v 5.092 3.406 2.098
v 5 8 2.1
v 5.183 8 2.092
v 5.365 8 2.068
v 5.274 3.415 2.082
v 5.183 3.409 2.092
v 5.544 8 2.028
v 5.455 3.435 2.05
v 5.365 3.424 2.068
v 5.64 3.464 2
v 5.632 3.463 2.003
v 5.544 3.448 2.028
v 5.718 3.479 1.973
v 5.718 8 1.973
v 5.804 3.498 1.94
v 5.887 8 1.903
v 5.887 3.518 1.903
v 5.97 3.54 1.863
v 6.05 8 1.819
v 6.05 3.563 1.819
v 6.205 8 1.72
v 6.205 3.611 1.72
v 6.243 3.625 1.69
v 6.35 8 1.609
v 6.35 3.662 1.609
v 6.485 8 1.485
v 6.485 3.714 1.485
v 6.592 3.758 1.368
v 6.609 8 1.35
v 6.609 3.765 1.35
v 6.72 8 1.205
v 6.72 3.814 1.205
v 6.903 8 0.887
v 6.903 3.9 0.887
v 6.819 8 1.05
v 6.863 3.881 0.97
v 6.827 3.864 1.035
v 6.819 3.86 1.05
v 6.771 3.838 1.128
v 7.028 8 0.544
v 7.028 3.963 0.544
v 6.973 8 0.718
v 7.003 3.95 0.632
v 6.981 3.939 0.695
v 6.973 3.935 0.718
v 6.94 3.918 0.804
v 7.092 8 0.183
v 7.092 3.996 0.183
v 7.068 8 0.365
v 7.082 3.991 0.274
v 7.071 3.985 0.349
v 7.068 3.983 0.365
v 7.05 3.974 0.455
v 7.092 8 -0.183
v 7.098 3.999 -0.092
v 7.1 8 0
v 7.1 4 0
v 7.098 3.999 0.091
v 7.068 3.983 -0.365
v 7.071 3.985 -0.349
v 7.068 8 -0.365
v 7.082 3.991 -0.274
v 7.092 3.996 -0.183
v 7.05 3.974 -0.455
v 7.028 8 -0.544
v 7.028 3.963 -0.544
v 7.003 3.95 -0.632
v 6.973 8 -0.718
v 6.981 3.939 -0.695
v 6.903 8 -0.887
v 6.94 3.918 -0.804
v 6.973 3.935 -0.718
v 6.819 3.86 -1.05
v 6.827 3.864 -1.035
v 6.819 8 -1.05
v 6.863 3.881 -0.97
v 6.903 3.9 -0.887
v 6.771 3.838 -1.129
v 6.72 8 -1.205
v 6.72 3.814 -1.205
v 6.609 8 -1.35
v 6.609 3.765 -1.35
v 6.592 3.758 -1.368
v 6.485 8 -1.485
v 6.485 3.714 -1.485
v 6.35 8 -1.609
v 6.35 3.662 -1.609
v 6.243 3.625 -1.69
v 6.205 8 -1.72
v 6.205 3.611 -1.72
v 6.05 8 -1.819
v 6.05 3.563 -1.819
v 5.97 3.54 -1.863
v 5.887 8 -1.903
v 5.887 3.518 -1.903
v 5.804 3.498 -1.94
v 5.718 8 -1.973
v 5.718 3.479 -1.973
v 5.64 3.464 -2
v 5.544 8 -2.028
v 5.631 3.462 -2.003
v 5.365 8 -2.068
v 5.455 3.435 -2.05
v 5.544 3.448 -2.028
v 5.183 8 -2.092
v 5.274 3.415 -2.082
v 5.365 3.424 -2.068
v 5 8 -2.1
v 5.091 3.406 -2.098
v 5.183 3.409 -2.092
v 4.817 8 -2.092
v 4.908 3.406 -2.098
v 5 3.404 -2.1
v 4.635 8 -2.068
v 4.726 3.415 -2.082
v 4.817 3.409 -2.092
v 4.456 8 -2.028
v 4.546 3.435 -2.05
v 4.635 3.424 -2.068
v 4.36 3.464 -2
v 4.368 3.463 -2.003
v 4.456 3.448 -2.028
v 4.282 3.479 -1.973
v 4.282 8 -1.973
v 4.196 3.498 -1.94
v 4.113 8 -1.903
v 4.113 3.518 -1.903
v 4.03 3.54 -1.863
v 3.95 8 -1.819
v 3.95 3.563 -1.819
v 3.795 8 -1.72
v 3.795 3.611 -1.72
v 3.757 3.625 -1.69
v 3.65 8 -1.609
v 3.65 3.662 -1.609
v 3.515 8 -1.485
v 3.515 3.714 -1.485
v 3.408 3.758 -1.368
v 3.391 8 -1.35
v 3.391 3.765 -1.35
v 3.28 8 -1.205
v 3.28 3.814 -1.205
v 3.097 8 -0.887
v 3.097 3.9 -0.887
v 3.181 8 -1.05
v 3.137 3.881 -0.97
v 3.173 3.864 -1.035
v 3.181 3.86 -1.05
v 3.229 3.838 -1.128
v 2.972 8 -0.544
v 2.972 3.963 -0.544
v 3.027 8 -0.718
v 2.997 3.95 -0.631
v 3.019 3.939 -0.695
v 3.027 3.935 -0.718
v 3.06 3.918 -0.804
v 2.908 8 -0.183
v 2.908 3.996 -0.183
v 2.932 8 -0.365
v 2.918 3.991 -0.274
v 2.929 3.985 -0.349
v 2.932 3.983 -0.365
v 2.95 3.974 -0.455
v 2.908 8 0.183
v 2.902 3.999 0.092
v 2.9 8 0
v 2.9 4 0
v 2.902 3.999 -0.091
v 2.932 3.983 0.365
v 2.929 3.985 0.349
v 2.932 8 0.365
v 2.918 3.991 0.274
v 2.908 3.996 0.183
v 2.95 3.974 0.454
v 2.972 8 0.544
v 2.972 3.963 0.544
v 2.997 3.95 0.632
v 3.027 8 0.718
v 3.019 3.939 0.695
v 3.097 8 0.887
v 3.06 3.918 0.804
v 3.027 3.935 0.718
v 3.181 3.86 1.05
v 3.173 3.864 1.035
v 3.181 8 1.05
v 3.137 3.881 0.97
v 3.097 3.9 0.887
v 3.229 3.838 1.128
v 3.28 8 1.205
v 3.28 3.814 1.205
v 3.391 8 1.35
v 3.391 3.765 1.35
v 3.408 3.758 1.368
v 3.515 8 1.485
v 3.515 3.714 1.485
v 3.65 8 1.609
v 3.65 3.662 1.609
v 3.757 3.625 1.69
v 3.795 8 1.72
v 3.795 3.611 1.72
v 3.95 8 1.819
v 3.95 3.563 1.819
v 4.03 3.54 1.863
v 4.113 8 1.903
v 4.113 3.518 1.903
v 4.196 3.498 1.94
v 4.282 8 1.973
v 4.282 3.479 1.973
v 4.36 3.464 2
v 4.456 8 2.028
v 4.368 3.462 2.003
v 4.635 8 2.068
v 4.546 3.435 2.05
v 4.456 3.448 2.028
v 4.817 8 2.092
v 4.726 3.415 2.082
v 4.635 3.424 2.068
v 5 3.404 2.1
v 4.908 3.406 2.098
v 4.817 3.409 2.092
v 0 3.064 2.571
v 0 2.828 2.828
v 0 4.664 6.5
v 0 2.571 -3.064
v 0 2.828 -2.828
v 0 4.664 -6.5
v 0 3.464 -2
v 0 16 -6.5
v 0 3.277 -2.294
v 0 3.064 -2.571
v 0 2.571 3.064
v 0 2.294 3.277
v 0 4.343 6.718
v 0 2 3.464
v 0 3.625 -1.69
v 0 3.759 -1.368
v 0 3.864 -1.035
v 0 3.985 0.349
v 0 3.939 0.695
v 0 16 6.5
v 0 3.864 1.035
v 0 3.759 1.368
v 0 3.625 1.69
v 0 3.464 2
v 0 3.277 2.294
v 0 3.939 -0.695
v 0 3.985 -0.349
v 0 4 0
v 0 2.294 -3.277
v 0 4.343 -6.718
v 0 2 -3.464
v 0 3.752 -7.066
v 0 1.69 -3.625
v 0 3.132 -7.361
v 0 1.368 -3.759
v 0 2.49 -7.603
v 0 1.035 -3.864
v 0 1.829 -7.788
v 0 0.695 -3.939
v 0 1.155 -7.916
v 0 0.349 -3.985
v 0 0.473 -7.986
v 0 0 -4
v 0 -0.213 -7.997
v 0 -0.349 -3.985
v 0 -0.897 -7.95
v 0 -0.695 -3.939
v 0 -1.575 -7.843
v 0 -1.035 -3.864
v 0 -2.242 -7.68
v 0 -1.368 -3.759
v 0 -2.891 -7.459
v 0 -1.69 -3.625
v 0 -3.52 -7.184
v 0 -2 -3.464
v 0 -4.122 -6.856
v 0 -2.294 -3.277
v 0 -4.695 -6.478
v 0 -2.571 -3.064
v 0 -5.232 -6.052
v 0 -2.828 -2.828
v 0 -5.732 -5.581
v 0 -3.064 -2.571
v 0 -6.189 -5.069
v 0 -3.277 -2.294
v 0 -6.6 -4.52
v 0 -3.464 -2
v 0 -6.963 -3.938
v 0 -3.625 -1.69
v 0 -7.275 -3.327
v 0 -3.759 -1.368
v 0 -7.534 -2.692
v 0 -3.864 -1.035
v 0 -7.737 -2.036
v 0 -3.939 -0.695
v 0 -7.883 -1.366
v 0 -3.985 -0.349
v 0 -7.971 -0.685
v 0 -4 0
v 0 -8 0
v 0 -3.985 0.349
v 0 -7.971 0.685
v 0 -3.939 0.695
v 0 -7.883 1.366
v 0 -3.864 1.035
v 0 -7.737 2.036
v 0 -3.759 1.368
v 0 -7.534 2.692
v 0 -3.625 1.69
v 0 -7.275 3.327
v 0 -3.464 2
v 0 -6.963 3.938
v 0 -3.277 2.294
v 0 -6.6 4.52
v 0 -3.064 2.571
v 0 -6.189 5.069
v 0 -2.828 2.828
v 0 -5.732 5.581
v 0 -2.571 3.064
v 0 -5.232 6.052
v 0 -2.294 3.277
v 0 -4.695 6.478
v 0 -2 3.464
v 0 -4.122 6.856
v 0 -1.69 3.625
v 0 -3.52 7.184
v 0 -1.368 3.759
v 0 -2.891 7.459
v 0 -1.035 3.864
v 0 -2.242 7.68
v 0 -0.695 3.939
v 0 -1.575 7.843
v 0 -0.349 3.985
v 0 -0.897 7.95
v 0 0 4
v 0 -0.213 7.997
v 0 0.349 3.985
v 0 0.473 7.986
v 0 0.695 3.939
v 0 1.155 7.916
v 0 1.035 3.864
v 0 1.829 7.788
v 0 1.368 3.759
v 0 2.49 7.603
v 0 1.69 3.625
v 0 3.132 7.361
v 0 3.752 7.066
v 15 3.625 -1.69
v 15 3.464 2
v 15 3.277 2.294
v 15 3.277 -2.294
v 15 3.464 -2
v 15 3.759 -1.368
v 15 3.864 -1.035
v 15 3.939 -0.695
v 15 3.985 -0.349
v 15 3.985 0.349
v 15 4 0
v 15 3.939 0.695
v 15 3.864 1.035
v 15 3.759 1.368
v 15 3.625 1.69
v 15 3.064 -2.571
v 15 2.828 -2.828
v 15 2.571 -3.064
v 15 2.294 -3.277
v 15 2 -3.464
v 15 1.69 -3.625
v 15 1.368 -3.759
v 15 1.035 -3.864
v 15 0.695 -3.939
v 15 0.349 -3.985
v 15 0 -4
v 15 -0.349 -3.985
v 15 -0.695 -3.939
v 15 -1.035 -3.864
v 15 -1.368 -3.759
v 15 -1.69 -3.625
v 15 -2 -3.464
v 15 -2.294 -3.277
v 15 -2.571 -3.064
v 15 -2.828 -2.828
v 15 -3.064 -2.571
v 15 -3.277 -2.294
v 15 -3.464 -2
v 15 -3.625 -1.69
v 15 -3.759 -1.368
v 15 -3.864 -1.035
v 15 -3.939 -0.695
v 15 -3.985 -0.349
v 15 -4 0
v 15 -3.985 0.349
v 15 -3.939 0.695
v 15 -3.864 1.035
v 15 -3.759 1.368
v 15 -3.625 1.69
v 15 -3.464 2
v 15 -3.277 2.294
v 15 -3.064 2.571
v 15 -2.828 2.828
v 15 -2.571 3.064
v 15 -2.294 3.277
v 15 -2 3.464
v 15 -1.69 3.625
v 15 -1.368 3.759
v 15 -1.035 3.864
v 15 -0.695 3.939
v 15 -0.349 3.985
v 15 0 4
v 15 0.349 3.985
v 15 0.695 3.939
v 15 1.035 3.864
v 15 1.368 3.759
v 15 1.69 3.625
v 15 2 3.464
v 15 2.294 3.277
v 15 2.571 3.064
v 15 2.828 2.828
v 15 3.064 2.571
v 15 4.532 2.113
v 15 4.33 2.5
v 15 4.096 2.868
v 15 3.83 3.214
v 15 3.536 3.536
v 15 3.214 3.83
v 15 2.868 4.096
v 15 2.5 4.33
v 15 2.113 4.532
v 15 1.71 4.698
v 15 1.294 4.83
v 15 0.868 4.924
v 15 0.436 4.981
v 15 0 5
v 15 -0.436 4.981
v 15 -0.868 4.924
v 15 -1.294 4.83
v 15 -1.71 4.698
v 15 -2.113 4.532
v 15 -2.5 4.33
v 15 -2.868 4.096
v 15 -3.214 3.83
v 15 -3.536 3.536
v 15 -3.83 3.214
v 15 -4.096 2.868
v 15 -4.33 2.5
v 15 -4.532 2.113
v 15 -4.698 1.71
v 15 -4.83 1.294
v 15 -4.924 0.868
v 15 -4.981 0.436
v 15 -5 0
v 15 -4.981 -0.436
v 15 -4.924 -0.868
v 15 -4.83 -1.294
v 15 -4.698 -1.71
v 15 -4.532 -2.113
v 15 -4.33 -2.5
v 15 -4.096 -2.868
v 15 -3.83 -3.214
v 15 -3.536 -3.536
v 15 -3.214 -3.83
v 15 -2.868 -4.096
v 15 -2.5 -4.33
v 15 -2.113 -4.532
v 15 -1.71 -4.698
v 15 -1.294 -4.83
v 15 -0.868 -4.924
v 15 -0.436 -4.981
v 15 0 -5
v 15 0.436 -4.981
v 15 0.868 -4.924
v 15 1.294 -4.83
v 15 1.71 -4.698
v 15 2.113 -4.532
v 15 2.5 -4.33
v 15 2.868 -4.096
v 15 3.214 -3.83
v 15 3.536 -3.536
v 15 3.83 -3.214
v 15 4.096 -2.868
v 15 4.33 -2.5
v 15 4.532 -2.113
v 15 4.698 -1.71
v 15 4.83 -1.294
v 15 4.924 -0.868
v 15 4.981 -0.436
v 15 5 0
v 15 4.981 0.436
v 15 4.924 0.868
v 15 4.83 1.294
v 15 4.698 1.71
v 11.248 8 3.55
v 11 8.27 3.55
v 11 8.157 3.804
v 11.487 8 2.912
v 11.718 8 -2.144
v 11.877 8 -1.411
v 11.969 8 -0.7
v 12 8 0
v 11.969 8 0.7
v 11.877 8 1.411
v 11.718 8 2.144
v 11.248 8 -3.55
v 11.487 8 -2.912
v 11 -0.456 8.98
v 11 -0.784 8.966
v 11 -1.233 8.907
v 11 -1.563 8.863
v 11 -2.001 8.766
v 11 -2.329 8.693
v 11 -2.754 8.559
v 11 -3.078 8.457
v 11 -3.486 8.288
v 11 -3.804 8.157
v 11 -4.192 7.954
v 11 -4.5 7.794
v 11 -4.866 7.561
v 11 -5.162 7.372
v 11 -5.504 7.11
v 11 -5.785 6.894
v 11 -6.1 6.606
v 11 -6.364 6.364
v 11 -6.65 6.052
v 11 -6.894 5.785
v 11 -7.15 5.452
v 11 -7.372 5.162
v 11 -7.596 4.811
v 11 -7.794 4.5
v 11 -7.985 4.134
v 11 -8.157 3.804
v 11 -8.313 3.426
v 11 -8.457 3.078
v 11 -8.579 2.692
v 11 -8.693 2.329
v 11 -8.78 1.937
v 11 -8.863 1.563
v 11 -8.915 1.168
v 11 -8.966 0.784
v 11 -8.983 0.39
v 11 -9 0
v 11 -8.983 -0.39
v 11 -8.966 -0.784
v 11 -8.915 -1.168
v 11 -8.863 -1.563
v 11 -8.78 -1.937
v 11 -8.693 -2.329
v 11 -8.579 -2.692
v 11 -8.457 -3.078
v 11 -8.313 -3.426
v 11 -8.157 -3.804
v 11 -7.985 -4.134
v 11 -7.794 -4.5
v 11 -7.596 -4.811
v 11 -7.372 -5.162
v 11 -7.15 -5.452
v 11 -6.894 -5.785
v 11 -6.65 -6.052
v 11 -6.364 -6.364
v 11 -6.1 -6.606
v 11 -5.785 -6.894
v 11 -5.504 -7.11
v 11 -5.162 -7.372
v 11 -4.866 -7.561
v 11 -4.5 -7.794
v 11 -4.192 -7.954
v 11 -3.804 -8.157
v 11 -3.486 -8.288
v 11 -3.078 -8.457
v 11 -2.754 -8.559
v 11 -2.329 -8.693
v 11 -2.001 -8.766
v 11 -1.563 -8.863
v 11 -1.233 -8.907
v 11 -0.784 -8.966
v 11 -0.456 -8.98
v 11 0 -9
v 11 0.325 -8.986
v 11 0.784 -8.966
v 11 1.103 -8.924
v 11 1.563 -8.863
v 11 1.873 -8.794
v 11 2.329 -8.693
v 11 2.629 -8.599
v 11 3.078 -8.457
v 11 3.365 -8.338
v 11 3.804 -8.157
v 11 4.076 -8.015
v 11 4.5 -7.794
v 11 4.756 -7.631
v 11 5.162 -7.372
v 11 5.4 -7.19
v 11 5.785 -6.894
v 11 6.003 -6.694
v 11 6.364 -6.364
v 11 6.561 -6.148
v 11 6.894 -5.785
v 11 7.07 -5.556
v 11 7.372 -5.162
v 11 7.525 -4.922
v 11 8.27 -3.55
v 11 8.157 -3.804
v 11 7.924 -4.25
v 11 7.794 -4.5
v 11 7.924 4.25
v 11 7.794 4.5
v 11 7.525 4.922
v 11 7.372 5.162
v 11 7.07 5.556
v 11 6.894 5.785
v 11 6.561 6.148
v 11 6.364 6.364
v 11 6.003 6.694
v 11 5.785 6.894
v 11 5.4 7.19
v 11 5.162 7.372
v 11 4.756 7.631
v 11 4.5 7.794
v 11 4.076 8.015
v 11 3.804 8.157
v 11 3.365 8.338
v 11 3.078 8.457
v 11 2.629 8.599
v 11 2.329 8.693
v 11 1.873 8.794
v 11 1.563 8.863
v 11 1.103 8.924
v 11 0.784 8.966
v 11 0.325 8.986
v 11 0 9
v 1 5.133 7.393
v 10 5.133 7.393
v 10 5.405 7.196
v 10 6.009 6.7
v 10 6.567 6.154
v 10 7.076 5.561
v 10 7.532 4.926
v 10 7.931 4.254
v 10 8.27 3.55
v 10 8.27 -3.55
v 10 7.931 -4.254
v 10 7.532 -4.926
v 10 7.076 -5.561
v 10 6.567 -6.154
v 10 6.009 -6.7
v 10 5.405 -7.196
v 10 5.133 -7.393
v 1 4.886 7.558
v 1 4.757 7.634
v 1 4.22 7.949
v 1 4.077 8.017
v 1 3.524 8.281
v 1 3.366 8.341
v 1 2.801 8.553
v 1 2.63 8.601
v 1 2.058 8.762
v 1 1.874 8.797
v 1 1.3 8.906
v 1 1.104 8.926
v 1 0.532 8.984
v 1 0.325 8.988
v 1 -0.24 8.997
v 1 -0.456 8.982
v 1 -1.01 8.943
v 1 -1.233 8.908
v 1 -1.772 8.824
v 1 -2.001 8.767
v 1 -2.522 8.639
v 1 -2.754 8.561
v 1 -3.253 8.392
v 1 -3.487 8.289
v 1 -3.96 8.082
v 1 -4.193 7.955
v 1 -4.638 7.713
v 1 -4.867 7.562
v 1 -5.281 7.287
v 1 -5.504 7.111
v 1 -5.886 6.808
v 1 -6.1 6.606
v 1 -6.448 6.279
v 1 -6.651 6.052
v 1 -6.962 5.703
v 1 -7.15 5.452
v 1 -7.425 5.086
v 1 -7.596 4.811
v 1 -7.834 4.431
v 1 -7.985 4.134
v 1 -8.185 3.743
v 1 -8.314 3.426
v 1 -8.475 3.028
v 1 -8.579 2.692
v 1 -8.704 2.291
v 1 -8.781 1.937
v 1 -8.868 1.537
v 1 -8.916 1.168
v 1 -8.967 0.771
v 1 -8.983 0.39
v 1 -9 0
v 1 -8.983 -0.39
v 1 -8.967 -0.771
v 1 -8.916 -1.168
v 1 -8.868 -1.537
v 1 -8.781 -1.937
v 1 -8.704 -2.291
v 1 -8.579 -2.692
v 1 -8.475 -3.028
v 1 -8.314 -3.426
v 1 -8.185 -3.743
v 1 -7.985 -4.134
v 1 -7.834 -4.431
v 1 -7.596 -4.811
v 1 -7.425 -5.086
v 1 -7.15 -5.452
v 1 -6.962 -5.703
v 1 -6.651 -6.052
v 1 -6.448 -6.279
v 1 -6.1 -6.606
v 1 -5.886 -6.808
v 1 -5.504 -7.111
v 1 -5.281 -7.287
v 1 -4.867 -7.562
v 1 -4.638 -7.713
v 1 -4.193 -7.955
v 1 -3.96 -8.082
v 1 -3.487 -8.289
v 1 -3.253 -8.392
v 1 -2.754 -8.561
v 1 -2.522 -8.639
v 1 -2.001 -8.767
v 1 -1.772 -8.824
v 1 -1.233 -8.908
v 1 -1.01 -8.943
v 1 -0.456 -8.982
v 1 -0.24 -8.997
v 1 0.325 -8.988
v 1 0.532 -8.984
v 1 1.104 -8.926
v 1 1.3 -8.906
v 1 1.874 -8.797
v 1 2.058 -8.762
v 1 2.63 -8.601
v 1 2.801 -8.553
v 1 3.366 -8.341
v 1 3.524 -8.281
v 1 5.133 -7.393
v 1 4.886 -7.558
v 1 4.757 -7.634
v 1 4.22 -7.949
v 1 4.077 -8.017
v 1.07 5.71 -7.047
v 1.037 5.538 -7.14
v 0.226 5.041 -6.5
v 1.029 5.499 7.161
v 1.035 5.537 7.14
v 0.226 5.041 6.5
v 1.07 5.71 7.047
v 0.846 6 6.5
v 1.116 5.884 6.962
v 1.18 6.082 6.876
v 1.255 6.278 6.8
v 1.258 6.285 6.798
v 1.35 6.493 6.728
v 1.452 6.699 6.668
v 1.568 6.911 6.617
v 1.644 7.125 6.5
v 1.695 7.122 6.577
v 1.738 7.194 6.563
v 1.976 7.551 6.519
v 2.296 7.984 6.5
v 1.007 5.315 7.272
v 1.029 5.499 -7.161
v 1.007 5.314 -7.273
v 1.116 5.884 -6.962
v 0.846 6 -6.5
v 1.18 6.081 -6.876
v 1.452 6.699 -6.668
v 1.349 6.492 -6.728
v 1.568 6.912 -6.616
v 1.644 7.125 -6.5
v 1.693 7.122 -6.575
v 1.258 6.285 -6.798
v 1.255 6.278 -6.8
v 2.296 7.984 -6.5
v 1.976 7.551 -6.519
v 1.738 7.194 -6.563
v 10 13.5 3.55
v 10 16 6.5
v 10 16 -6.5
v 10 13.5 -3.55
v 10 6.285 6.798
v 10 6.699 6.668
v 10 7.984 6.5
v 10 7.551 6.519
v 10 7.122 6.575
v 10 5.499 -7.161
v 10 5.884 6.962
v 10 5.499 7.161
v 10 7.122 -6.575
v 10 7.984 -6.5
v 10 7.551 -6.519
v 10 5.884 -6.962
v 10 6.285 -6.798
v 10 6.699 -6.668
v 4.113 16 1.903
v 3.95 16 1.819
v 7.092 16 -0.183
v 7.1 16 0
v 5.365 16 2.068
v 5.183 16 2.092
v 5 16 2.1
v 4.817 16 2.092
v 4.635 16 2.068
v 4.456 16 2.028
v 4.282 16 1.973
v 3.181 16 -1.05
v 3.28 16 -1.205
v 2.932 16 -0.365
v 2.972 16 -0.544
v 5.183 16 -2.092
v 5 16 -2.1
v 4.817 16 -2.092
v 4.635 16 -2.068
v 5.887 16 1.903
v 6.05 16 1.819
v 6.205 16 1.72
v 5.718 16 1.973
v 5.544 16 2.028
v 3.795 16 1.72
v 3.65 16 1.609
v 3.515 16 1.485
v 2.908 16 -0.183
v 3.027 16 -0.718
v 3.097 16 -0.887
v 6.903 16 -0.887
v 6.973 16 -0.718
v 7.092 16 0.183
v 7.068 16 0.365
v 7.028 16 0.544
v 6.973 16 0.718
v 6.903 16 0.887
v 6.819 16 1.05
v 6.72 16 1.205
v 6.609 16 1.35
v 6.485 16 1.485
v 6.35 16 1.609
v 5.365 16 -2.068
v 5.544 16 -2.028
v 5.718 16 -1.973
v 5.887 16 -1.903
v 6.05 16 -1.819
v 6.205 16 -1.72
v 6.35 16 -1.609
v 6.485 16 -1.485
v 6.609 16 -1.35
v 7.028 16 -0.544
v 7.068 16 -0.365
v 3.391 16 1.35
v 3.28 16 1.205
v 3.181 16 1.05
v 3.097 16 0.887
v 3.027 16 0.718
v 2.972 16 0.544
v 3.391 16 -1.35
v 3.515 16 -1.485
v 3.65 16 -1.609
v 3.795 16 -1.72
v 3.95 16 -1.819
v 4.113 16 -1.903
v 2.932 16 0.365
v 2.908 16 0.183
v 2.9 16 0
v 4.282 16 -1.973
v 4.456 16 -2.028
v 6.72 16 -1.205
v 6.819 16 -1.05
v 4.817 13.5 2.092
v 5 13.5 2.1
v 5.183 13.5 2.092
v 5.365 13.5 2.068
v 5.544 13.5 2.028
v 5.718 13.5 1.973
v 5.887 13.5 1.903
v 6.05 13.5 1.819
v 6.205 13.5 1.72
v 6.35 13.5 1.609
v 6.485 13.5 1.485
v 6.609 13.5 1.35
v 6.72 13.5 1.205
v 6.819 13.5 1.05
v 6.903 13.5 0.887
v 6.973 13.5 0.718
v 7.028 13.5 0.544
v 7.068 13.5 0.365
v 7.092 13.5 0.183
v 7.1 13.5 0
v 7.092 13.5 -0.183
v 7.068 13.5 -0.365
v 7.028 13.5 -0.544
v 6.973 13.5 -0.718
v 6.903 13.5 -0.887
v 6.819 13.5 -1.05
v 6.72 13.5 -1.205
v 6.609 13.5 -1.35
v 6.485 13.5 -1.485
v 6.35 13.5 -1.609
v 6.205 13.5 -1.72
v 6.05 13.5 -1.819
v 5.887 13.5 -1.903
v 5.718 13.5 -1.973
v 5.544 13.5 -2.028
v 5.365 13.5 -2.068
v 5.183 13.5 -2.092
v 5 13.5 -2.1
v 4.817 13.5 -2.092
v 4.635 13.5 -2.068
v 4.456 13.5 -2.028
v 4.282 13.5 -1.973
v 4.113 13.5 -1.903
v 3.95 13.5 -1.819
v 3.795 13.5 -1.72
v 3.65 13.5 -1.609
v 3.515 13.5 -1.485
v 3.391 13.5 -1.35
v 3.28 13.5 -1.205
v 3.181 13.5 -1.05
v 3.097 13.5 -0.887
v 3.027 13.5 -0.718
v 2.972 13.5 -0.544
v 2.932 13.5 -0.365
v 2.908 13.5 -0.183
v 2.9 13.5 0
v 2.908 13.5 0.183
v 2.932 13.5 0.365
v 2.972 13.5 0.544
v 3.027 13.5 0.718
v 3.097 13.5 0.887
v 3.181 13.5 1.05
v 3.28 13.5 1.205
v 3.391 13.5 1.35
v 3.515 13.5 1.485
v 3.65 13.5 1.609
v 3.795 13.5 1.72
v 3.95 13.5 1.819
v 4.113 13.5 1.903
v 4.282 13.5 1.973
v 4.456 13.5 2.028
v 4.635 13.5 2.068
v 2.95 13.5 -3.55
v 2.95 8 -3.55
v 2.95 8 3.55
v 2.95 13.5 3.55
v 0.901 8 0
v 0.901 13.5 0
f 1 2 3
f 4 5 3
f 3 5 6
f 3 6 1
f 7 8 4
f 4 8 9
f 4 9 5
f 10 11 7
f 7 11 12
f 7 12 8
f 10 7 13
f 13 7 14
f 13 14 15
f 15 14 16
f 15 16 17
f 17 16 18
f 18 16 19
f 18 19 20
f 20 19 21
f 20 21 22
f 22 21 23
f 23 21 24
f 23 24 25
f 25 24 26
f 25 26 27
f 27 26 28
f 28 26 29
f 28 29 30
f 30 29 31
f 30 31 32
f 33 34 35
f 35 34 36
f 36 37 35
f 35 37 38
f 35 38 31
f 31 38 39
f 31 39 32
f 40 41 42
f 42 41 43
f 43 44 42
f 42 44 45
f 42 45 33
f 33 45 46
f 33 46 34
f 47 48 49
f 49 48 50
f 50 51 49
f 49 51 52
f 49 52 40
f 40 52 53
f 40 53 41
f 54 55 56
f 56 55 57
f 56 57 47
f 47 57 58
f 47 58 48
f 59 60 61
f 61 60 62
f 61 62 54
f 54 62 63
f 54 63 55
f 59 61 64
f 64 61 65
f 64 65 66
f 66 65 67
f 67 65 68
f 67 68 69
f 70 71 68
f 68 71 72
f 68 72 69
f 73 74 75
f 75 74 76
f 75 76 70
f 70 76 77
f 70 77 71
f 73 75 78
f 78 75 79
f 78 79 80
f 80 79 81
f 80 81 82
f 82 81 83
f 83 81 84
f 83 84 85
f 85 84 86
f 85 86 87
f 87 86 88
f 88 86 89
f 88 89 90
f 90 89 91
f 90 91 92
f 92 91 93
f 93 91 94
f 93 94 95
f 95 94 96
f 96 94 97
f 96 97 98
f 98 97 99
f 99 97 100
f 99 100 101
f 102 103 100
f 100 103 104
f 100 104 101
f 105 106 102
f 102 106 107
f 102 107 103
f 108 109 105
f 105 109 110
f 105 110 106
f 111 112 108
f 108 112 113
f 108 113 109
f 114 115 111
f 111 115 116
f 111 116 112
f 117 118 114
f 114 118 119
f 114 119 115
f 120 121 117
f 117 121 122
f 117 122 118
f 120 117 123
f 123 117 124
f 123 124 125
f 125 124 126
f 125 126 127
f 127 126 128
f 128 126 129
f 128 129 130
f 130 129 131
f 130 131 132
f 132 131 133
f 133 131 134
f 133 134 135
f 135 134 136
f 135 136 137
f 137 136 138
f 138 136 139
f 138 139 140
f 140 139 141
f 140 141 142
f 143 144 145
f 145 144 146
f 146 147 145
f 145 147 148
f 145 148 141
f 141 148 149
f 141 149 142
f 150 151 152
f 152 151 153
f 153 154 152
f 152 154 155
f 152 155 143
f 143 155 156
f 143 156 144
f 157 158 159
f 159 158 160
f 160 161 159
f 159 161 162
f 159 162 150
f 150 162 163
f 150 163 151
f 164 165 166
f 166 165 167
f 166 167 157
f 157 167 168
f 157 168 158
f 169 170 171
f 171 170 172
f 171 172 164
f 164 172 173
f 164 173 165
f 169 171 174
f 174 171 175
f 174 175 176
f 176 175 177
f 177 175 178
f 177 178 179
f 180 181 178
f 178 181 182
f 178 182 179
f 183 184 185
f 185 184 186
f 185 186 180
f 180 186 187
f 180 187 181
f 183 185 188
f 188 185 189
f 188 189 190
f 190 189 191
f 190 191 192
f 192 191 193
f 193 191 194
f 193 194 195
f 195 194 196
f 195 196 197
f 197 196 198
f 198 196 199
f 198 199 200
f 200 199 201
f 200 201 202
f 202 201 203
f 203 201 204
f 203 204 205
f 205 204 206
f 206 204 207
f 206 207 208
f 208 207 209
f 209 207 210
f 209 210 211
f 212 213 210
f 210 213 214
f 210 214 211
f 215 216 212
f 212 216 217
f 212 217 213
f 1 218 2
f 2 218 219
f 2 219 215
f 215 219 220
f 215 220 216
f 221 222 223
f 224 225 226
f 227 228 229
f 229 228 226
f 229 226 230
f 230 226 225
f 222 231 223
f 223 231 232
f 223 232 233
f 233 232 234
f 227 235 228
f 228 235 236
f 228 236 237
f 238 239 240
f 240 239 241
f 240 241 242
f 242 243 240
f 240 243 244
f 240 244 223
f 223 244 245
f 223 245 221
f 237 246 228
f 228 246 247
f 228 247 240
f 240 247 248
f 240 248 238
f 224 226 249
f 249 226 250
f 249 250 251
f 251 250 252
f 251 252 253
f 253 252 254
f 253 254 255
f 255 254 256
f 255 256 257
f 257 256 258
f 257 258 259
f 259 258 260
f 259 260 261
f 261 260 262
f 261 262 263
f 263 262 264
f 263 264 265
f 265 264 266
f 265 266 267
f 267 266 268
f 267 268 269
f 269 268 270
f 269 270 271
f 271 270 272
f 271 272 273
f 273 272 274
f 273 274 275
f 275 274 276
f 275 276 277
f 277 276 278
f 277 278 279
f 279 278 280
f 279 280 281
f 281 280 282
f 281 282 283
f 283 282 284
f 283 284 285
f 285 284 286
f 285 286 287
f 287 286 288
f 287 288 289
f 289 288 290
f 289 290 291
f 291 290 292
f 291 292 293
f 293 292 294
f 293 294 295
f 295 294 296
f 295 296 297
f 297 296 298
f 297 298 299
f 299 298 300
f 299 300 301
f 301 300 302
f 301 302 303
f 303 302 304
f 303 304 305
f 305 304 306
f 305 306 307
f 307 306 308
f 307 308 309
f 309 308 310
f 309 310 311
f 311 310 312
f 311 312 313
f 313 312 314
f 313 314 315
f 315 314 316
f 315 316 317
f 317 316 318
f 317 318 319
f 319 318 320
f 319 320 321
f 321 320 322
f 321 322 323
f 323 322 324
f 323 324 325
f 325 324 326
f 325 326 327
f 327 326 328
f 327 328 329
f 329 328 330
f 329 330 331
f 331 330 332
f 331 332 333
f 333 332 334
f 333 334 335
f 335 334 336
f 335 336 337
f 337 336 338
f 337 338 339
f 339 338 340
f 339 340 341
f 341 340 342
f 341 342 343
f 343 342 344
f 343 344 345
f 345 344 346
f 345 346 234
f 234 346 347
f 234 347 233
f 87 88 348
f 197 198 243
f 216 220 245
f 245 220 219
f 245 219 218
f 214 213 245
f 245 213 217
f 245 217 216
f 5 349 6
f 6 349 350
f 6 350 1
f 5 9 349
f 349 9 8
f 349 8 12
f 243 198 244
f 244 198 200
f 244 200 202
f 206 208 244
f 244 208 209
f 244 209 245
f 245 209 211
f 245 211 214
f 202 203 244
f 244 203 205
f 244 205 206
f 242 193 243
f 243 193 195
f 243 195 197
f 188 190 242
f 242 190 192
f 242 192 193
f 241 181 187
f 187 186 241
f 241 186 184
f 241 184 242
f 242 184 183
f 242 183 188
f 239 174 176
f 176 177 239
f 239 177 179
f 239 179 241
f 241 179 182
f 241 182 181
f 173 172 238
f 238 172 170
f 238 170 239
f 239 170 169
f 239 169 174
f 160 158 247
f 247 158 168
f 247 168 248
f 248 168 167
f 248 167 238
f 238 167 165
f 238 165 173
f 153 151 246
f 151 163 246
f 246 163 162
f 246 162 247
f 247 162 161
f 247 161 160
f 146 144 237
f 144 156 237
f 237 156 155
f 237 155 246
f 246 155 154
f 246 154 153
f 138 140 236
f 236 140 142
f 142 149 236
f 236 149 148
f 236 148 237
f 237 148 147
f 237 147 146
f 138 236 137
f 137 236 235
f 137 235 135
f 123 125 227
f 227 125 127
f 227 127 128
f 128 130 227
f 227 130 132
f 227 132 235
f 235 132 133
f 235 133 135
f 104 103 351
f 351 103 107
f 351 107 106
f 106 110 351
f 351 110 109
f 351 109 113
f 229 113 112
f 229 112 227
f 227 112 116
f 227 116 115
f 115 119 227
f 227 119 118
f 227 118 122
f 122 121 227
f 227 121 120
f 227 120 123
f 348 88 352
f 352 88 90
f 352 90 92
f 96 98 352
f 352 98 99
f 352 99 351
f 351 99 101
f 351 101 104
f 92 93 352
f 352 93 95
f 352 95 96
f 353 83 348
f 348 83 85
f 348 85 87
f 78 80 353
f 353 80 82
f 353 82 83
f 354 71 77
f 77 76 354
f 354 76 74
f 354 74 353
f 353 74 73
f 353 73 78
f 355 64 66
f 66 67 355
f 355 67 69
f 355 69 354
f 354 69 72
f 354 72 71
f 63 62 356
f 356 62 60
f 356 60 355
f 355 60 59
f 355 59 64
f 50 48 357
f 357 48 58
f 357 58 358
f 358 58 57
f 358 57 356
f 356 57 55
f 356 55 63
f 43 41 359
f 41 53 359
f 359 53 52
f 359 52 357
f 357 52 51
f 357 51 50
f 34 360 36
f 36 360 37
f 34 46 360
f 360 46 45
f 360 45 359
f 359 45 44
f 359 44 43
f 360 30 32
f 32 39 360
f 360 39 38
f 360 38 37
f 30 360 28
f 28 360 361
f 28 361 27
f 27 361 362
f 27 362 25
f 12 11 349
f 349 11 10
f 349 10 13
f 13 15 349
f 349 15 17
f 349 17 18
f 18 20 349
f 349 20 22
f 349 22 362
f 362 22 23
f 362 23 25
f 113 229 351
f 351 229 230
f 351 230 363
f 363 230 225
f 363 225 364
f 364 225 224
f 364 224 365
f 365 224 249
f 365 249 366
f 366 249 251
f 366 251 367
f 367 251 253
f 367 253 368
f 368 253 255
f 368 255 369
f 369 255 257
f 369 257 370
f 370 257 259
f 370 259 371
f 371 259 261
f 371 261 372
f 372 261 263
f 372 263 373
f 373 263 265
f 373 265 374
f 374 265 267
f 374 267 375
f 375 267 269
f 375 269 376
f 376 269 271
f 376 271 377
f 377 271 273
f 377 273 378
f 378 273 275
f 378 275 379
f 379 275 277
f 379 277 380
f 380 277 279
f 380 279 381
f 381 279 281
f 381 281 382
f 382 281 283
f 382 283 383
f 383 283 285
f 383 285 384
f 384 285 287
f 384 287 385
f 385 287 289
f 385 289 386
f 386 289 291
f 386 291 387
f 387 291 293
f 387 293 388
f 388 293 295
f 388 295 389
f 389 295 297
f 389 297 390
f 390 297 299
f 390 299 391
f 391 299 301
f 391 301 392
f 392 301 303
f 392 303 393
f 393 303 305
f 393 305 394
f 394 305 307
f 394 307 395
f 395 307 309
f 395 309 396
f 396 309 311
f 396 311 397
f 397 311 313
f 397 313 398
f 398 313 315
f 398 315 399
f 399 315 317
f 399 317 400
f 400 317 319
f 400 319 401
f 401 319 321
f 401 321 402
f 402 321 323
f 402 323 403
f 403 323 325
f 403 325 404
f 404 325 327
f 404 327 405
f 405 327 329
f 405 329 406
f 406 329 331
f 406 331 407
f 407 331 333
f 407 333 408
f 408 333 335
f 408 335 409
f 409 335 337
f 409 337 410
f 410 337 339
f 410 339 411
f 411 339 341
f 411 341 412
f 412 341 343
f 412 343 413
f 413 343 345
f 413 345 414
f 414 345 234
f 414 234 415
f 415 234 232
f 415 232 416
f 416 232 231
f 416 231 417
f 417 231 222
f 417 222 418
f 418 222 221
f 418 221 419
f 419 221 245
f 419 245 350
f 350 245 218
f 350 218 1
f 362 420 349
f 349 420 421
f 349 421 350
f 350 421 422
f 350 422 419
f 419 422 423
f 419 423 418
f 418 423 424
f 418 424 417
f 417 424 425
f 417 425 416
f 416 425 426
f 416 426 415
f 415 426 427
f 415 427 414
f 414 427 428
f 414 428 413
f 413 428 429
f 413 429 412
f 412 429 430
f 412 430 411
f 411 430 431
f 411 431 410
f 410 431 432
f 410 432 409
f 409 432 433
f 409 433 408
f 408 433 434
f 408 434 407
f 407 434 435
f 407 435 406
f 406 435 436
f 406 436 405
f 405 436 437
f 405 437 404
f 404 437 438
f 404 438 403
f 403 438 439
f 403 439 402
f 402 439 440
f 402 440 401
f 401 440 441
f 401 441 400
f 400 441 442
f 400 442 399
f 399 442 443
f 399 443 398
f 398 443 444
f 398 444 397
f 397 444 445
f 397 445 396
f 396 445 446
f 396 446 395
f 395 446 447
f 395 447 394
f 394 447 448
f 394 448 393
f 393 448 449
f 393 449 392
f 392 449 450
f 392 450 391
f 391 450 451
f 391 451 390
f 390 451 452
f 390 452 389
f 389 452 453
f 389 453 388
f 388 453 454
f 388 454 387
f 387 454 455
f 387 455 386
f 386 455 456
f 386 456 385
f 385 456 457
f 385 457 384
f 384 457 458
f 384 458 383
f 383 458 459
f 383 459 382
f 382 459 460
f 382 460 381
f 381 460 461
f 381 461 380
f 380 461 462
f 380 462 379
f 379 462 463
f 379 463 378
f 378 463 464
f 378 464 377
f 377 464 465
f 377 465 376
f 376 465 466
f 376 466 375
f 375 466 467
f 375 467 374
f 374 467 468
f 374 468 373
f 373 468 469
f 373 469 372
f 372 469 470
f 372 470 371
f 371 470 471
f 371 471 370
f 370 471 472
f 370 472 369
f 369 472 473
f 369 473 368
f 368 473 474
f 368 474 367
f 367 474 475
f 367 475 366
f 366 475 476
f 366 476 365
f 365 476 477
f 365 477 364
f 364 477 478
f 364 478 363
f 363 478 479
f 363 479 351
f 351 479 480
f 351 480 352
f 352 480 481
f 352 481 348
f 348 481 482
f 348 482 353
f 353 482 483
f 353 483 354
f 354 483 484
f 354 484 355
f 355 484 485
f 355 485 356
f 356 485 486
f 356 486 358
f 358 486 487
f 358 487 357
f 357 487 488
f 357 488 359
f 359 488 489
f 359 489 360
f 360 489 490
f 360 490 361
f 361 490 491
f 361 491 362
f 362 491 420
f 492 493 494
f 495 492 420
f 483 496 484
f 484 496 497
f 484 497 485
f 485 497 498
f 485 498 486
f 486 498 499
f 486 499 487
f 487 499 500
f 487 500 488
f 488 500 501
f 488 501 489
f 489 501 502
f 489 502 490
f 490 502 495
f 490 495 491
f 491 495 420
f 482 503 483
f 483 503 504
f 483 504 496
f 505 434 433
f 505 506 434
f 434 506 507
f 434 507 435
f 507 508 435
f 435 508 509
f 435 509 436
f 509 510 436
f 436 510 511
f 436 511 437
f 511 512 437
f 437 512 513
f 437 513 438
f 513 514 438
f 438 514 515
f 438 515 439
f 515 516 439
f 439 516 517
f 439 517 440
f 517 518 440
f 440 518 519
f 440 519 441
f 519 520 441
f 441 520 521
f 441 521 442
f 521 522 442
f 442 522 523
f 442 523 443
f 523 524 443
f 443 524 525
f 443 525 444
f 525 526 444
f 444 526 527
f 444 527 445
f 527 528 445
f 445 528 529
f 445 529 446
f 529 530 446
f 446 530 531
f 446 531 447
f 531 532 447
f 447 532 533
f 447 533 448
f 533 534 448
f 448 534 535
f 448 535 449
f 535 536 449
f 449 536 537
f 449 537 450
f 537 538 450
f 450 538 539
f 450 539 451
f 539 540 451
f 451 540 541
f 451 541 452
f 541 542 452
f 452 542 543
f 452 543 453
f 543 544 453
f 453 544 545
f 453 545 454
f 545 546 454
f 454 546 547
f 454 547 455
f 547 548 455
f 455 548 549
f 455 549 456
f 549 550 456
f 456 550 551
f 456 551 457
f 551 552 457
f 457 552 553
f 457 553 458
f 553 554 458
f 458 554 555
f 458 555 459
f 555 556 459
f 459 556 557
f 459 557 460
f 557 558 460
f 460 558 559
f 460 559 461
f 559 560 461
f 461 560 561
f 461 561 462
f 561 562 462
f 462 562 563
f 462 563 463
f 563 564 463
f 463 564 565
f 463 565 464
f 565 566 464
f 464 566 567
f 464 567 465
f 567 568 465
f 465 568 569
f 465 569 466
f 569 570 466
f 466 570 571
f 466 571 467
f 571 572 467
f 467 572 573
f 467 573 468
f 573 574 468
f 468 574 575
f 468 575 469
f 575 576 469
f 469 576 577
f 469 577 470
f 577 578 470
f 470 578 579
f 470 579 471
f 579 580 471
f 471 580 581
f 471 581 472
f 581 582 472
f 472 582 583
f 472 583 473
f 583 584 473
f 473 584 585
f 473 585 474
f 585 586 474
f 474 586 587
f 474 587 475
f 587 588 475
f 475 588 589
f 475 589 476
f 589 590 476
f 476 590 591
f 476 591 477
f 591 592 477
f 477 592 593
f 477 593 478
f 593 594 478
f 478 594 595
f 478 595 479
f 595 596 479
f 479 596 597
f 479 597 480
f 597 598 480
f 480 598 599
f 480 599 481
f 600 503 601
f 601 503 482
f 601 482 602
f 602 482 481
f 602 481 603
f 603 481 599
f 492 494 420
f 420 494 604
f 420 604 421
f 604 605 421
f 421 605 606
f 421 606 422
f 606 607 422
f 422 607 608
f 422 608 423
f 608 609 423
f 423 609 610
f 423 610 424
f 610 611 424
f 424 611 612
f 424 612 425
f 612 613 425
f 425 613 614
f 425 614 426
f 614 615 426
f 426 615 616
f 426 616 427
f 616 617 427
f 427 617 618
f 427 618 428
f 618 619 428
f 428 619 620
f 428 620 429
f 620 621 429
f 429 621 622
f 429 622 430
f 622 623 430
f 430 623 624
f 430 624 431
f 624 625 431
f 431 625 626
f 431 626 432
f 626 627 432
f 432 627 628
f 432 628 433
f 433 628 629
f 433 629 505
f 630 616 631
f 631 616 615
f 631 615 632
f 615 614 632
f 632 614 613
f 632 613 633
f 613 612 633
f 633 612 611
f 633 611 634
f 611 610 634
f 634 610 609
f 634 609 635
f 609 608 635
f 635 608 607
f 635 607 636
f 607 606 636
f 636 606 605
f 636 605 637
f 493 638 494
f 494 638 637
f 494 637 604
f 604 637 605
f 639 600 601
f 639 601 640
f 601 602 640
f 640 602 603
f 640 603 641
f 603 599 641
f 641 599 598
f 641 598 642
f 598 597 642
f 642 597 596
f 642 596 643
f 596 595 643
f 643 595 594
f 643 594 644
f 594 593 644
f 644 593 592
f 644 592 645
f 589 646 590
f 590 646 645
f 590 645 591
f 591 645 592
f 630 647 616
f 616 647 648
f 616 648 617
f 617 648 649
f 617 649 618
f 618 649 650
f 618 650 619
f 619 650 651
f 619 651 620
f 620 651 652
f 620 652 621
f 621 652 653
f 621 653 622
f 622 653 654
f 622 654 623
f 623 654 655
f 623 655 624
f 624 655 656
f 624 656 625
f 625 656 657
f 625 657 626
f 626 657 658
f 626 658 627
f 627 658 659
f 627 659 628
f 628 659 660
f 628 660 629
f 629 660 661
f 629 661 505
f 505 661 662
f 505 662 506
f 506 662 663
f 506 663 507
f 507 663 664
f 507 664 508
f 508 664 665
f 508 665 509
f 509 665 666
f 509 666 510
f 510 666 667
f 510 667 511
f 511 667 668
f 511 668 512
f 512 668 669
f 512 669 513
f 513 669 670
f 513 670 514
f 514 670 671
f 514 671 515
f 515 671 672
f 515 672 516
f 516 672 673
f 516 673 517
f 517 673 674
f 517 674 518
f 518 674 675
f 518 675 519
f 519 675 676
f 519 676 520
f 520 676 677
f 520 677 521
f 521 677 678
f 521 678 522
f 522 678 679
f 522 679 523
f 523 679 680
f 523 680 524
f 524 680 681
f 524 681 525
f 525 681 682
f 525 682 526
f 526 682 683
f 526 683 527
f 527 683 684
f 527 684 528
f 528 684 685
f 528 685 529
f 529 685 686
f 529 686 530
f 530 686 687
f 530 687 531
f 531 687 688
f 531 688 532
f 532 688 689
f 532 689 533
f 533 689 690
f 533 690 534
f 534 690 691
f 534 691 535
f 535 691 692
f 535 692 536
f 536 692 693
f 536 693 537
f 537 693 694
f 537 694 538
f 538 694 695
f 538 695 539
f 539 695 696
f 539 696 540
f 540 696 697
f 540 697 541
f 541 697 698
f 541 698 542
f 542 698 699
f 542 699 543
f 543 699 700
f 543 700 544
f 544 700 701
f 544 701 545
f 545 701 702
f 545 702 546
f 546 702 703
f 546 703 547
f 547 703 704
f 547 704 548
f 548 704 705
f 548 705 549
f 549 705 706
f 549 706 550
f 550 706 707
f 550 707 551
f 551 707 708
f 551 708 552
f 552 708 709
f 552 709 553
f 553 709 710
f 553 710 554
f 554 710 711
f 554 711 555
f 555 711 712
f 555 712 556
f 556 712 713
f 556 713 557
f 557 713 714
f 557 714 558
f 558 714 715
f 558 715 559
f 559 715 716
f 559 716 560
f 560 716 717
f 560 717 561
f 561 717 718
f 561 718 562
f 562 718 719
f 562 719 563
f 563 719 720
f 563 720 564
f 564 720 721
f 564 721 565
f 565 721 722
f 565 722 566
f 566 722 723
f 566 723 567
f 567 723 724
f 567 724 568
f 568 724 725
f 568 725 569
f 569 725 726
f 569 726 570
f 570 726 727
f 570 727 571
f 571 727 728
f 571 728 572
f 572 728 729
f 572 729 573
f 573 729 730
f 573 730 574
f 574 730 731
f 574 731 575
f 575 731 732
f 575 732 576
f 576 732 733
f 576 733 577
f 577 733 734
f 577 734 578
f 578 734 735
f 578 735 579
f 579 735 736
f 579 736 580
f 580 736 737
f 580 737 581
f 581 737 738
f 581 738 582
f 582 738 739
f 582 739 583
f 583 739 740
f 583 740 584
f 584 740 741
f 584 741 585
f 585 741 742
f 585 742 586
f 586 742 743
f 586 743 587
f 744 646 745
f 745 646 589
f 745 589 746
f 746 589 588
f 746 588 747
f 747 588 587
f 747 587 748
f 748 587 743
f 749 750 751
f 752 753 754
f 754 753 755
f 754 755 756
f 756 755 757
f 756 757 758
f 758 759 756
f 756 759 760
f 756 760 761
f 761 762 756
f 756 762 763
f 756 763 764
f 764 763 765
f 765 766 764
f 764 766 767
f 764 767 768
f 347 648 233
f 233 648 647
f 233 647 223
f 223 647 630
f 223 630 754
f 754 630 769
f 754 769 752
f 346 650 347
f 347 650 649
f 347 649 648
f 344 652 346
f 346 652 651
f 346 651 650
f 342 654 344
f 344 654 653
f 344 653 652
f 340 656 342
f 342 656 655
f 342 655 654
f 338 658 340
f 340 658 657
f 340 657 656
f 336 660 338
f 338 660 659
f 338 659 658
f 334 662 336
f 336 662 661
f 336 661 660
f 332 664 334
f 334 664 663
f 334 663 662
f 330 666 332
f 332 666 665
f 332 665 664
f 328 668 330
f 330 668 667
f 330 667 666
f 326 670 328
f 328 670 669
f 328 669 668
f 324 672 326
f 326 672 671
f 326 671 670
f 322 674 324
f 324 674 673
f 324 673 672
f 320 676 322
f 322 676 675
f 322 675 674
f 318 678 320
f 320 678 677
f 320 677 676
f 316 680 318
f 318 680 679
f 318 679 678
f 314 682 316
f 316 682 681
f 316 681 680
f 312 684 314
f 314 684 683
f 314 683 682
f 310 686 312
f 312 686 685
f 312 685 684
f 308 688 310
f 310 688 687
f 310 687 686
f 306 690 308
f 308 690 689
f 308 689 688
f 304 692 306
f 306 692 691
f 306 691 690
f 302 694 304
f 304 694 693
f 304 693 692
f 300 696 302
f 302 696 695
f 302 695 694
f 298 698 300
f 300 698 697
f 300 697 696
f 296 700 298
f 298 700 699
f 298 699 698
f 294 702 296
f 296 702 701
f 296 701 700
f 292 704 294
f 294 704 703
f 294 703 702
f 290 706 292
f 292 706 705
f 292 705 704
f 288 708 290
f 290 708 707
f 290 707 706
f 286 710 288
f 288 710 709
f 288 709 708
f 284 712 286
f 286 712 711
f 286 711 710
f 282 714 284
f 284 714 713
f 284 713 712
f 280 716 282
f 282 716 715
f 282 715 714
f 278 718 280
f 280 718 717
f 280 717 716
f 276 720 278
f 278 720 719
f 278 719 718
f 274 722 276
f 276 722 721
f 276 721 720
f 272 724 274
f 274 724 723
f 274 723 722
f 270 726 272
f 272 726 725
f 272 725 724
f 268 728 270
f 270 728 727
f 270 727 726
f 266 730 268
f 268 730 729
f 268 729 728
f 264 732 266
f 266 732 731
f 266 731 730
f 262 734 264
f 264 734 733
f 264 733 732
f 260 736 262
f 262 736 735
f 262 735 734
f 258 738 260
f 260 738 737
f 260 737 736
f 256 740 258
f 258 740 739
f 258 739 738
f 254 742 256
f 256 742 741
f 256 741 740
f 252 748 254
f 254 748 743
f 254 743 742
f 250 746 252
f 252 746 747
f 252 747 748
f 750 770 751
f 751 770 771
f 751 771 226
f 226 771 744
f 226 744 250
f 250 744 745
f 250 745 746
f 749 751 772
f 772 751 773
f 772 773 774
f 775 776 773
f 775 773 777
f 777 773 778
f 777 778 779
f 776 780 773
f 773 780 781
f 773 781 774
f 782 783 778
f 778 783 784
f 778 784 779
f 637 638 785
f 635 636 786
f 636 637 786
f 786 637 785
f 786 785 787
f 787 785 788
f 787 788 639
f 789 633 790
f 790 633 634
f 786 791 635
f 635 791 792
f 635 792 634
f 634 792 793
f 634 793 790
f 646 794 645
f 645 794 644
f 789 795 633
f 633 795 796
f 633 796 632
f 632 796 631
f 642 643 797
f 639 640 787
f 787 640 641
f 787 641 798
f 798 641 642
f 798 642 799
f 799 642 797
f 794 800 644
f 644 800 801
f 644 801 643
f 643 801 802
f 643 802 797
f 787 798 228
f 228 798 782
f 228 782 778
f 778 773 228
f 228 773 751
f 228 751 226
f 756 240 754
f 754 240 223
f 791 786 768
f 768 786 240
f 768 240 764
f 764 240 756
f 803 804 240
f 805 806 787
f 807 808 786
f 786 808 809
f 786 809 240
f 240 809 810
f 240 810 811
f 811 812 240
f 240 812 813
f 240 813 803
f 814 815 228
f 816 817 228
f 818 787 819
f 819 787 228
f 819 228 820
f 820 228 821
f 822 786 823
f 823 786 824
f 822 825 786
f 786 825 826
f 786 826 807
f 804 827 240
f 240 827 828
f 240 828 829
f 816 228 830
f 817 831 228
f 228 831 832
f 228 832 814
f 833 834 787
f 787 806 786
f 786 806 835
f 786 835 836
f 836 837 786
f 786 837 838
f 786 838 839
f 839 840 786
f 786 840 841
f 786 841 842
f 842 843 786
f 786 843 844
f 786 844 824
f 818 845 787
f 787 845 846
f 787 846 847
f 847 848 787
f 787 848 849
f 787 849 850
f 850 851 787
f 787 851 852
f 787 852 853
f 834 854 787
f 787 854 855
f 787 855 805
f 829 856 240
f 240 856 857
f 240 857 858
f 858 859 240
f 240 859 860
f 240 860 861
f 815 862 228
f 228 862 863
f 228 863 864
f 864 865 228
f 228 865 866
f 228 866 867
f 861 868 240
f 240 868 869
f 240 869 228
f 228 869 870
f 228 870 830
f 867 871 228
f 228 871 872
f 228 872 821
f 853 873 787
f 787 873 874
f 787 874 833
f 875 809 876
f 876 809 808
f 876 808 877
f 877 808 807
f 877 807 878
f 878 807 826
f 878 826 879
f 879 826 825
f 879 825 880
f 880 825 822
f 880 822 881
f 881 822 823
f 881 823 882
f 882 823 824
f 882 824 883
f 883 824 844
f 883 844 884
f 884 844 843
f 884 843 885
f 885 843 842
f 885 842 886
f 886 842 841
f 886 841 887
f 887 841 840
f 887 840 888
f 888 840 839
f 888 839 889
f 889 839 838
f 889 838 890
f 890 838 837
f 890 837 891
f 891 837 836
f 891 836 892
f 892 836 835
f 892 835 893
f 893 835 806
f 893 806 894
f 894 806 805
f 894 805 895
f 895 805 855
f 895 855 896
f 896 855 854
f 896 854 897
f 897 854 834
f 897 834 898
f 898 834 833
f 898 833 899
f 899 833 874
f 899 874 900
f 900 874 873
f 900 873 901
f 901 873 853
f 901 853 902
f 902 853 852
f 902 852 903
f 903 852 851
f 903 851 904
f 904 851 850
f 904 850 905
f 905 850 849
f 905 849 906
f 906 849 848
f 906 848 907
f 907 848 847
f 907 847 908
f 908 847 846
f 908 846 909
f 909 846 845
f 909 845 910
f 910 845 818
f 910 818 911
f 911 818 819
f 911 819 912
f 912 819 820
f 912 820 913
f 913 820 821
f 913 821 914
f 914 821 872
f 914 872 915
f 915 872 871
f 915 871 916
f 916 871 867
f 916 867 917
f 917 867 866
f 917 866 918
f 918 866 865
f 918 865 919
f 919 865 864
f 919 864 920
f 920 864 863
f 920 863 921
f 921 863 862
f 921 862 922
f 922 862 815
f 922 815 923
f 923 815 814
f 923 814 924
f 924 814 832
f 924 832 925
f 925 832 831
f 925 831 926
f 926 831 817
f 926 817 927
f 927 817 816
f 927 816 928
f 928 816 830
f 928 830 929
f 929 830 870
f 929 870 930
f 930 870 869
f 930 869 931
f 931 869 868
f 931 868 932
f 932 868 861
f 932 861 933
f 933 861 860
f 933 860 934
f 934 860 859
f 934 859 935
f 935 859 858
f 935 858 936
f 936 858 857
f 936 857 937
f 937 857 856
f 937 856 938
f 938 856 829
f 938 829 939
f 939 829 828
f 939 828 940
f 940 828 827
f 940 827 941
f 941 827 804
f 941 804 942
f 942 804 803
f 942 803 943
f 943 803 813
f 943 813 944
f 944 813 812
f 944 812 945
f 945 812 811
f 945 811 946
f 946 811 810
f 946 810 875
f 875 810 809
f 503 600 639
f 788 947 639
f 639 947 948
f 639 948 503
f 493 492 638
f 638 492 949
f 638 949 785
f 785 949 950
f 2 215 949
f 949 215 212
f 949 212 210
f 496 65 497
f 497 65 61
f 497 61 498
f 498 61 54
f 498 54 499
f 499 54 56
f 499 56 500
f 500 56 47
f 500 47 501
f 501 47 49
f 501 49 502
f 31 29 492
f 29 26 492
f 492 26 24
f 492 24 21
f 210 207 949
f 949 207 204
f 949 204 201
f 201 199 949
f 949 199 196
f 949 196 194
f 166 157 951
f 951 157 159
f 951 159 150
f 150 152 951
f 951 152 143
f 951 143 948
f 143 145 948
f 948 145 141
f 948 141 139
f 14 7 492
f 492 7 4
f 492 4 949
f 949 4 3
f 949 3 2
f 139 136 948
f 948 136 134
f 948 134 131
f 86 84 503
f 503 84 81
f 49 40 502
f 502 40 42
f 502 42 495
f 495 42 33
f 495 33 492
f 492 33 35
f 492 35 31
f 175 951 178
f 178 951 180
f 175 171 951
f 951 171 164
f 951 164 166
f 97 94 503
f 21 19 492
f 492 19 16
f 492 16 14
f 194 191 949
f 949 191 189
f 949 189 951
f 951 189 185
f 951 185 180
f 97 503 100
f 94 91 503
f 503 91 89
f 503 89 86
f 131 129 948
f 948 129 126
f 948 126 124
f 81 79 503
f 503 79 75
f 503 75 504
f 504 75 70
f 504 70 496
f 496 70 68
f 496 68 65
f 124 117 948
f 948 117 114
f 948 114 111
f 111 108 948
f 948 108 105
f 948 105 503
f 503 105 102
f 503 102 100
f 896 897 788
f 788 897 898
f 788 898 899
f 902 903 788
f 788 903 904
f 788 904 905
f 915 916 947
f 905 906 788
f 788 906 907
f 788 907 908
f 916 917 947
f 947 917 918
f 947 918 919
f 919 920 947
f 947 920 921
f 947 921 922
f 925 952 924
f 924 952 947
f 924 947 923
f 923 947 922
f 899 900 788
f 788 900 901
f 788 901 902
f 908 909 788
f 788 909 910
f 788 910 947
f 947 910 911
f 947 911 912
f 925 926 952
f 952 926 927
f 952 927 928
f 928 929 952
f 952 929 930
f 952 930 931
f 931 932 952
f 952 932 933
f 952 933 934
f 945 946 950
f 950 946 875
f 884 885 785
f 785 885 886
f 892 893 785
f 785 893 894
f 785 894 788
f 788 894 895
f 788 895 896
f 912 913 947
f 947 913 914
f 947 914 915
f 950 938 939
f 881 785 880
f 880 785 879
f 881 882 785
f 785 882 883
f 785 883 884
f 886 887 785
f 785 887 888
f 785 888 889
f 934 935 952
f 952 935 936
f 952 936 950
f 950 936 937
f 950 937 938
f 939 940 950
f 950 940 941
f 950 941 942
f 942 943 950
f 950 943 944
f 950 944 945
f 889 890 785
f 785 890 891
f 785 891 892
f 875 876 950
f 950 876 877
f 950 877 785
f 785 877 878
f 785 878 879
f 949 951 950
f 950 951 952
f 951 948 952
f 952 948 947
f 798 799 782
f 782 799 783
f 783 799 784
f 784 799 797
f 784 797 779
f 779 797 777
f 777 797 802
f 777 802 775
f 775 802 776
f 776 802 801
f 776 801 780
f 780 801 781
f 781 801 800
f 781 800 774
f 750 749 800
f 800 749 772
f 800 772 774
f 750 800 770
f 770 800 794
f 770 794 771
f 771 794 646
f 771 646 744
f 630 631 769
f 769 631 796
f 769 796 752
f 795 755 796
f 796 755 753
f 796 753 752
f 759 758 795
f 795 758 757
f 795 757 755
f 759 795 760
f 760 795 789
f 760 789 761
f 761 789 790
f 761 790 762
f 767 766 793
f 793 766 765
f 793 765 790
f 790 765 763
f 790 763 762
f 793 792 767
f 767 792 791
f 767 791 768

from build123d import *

# Parameters (mm, degrees)
SKETCH2_W               = 13
SKETCH2_H               = 12
BOSS_EXTRUDE1_DEPTH     = 10
CUT_EXTRUDE1_REACH      = 32.512
CUT_EXTRUDE1_END_RADIUS = 4
SKETCH3_R               = 2.1
CUT_EXTRUDE2_START      = -2.5
CUT_EXTRUDE2_DEPTH      = 5.5
FILLET1_R               = 5


with BuildPart() as part:
    # Sketch1 → Revolve1 (revolve)
    with BuildSketch(Plane.XY, mode=Mode.PRIVATE) as revolve1_sk:
        Polygon((0, 4), (15, 4), (15, 5), (11, 9), (1, 9), (0, 8), align=None)
    revolve(revolve1_sk.sketch.rotate(Axis((0, 0, 0), (1, 0, 0)), 90), axis=Axis((0, 0, 0), (1, 0, 0)))

    # Sketch2 → Boss-Extrude1 (add)
    with BuildSketch(Plane.ZY):
        with Locations((0, 10)):
            Rectangle(SKETCH2_W, SKETCH2_H)
    extrude(amount=-BOSS_EXTRUDE1_DEPTH)

    # Cut-Extrude1: up to this cylinder (the profile starts outside it)
    cut_extrude1_end = Plane(origin=(5, 0, 0), z_dir=(-1, 0, 0)) * Cylinder(CUT_EXTRUDE1_END_RADIUS, 74.024, mode=Mode.PRIVATE)
    # Sketch3 → Cut-Extrude1 (cut, up to the surface)
    with BuildSketch(Plane(origin=(0, 16, 0), x_dir=(1, 0, 0), z_dir=(0, 1, 0)), mode=Mode.PRIVATE) as cut_extrude1_sk1:
        with Locations(Location((5, 0, 0), (0, 0, 270))):
            Circle(SKETCH3_R)
    cut_extrude1_tool1 = extrude(cut_extrude1_sk1.sketch, amount=-CUT_EXTRUDE1_REACH, mode=Mode.PRIVATE) - cut_extrude1_end
    add(cut_extrude1_tool1.solids().sort_by_distance((5, 16, 0))[0], mode=Mode.SUBTRACT)

    # Sketch4 → Cut-Extrude2 (cut)
    with BuildSketch(Plane(origin=(0, 16, 0), x_dir=(1, 0, 0), z_dir=(0, 1, 0)).offset(CUT_EXTRUDE2_START)):
        Polygon((7.049593456, 3.55), (15, 3.55), (15, -3.55), (7.049593456, -3.55), (2.950406544, -3.55), (0.900813089, 0), (2.950406544, 3.55), align=None)
    extrude(amount=-CUT_EXTRUDE2_DEPTH, mode=Mode.SUBTRACT)

    # Fillet1
    fillet1_edges = [part.edges().sort_by_distance(p)[0] for p in [
        (5.5, 6.224949799, -6.5),
        (5.5, 6.224949799, 6.5),
    ]]
    fillet(fillet1_edges, radius=FILLET1_R)


solid = part.part
